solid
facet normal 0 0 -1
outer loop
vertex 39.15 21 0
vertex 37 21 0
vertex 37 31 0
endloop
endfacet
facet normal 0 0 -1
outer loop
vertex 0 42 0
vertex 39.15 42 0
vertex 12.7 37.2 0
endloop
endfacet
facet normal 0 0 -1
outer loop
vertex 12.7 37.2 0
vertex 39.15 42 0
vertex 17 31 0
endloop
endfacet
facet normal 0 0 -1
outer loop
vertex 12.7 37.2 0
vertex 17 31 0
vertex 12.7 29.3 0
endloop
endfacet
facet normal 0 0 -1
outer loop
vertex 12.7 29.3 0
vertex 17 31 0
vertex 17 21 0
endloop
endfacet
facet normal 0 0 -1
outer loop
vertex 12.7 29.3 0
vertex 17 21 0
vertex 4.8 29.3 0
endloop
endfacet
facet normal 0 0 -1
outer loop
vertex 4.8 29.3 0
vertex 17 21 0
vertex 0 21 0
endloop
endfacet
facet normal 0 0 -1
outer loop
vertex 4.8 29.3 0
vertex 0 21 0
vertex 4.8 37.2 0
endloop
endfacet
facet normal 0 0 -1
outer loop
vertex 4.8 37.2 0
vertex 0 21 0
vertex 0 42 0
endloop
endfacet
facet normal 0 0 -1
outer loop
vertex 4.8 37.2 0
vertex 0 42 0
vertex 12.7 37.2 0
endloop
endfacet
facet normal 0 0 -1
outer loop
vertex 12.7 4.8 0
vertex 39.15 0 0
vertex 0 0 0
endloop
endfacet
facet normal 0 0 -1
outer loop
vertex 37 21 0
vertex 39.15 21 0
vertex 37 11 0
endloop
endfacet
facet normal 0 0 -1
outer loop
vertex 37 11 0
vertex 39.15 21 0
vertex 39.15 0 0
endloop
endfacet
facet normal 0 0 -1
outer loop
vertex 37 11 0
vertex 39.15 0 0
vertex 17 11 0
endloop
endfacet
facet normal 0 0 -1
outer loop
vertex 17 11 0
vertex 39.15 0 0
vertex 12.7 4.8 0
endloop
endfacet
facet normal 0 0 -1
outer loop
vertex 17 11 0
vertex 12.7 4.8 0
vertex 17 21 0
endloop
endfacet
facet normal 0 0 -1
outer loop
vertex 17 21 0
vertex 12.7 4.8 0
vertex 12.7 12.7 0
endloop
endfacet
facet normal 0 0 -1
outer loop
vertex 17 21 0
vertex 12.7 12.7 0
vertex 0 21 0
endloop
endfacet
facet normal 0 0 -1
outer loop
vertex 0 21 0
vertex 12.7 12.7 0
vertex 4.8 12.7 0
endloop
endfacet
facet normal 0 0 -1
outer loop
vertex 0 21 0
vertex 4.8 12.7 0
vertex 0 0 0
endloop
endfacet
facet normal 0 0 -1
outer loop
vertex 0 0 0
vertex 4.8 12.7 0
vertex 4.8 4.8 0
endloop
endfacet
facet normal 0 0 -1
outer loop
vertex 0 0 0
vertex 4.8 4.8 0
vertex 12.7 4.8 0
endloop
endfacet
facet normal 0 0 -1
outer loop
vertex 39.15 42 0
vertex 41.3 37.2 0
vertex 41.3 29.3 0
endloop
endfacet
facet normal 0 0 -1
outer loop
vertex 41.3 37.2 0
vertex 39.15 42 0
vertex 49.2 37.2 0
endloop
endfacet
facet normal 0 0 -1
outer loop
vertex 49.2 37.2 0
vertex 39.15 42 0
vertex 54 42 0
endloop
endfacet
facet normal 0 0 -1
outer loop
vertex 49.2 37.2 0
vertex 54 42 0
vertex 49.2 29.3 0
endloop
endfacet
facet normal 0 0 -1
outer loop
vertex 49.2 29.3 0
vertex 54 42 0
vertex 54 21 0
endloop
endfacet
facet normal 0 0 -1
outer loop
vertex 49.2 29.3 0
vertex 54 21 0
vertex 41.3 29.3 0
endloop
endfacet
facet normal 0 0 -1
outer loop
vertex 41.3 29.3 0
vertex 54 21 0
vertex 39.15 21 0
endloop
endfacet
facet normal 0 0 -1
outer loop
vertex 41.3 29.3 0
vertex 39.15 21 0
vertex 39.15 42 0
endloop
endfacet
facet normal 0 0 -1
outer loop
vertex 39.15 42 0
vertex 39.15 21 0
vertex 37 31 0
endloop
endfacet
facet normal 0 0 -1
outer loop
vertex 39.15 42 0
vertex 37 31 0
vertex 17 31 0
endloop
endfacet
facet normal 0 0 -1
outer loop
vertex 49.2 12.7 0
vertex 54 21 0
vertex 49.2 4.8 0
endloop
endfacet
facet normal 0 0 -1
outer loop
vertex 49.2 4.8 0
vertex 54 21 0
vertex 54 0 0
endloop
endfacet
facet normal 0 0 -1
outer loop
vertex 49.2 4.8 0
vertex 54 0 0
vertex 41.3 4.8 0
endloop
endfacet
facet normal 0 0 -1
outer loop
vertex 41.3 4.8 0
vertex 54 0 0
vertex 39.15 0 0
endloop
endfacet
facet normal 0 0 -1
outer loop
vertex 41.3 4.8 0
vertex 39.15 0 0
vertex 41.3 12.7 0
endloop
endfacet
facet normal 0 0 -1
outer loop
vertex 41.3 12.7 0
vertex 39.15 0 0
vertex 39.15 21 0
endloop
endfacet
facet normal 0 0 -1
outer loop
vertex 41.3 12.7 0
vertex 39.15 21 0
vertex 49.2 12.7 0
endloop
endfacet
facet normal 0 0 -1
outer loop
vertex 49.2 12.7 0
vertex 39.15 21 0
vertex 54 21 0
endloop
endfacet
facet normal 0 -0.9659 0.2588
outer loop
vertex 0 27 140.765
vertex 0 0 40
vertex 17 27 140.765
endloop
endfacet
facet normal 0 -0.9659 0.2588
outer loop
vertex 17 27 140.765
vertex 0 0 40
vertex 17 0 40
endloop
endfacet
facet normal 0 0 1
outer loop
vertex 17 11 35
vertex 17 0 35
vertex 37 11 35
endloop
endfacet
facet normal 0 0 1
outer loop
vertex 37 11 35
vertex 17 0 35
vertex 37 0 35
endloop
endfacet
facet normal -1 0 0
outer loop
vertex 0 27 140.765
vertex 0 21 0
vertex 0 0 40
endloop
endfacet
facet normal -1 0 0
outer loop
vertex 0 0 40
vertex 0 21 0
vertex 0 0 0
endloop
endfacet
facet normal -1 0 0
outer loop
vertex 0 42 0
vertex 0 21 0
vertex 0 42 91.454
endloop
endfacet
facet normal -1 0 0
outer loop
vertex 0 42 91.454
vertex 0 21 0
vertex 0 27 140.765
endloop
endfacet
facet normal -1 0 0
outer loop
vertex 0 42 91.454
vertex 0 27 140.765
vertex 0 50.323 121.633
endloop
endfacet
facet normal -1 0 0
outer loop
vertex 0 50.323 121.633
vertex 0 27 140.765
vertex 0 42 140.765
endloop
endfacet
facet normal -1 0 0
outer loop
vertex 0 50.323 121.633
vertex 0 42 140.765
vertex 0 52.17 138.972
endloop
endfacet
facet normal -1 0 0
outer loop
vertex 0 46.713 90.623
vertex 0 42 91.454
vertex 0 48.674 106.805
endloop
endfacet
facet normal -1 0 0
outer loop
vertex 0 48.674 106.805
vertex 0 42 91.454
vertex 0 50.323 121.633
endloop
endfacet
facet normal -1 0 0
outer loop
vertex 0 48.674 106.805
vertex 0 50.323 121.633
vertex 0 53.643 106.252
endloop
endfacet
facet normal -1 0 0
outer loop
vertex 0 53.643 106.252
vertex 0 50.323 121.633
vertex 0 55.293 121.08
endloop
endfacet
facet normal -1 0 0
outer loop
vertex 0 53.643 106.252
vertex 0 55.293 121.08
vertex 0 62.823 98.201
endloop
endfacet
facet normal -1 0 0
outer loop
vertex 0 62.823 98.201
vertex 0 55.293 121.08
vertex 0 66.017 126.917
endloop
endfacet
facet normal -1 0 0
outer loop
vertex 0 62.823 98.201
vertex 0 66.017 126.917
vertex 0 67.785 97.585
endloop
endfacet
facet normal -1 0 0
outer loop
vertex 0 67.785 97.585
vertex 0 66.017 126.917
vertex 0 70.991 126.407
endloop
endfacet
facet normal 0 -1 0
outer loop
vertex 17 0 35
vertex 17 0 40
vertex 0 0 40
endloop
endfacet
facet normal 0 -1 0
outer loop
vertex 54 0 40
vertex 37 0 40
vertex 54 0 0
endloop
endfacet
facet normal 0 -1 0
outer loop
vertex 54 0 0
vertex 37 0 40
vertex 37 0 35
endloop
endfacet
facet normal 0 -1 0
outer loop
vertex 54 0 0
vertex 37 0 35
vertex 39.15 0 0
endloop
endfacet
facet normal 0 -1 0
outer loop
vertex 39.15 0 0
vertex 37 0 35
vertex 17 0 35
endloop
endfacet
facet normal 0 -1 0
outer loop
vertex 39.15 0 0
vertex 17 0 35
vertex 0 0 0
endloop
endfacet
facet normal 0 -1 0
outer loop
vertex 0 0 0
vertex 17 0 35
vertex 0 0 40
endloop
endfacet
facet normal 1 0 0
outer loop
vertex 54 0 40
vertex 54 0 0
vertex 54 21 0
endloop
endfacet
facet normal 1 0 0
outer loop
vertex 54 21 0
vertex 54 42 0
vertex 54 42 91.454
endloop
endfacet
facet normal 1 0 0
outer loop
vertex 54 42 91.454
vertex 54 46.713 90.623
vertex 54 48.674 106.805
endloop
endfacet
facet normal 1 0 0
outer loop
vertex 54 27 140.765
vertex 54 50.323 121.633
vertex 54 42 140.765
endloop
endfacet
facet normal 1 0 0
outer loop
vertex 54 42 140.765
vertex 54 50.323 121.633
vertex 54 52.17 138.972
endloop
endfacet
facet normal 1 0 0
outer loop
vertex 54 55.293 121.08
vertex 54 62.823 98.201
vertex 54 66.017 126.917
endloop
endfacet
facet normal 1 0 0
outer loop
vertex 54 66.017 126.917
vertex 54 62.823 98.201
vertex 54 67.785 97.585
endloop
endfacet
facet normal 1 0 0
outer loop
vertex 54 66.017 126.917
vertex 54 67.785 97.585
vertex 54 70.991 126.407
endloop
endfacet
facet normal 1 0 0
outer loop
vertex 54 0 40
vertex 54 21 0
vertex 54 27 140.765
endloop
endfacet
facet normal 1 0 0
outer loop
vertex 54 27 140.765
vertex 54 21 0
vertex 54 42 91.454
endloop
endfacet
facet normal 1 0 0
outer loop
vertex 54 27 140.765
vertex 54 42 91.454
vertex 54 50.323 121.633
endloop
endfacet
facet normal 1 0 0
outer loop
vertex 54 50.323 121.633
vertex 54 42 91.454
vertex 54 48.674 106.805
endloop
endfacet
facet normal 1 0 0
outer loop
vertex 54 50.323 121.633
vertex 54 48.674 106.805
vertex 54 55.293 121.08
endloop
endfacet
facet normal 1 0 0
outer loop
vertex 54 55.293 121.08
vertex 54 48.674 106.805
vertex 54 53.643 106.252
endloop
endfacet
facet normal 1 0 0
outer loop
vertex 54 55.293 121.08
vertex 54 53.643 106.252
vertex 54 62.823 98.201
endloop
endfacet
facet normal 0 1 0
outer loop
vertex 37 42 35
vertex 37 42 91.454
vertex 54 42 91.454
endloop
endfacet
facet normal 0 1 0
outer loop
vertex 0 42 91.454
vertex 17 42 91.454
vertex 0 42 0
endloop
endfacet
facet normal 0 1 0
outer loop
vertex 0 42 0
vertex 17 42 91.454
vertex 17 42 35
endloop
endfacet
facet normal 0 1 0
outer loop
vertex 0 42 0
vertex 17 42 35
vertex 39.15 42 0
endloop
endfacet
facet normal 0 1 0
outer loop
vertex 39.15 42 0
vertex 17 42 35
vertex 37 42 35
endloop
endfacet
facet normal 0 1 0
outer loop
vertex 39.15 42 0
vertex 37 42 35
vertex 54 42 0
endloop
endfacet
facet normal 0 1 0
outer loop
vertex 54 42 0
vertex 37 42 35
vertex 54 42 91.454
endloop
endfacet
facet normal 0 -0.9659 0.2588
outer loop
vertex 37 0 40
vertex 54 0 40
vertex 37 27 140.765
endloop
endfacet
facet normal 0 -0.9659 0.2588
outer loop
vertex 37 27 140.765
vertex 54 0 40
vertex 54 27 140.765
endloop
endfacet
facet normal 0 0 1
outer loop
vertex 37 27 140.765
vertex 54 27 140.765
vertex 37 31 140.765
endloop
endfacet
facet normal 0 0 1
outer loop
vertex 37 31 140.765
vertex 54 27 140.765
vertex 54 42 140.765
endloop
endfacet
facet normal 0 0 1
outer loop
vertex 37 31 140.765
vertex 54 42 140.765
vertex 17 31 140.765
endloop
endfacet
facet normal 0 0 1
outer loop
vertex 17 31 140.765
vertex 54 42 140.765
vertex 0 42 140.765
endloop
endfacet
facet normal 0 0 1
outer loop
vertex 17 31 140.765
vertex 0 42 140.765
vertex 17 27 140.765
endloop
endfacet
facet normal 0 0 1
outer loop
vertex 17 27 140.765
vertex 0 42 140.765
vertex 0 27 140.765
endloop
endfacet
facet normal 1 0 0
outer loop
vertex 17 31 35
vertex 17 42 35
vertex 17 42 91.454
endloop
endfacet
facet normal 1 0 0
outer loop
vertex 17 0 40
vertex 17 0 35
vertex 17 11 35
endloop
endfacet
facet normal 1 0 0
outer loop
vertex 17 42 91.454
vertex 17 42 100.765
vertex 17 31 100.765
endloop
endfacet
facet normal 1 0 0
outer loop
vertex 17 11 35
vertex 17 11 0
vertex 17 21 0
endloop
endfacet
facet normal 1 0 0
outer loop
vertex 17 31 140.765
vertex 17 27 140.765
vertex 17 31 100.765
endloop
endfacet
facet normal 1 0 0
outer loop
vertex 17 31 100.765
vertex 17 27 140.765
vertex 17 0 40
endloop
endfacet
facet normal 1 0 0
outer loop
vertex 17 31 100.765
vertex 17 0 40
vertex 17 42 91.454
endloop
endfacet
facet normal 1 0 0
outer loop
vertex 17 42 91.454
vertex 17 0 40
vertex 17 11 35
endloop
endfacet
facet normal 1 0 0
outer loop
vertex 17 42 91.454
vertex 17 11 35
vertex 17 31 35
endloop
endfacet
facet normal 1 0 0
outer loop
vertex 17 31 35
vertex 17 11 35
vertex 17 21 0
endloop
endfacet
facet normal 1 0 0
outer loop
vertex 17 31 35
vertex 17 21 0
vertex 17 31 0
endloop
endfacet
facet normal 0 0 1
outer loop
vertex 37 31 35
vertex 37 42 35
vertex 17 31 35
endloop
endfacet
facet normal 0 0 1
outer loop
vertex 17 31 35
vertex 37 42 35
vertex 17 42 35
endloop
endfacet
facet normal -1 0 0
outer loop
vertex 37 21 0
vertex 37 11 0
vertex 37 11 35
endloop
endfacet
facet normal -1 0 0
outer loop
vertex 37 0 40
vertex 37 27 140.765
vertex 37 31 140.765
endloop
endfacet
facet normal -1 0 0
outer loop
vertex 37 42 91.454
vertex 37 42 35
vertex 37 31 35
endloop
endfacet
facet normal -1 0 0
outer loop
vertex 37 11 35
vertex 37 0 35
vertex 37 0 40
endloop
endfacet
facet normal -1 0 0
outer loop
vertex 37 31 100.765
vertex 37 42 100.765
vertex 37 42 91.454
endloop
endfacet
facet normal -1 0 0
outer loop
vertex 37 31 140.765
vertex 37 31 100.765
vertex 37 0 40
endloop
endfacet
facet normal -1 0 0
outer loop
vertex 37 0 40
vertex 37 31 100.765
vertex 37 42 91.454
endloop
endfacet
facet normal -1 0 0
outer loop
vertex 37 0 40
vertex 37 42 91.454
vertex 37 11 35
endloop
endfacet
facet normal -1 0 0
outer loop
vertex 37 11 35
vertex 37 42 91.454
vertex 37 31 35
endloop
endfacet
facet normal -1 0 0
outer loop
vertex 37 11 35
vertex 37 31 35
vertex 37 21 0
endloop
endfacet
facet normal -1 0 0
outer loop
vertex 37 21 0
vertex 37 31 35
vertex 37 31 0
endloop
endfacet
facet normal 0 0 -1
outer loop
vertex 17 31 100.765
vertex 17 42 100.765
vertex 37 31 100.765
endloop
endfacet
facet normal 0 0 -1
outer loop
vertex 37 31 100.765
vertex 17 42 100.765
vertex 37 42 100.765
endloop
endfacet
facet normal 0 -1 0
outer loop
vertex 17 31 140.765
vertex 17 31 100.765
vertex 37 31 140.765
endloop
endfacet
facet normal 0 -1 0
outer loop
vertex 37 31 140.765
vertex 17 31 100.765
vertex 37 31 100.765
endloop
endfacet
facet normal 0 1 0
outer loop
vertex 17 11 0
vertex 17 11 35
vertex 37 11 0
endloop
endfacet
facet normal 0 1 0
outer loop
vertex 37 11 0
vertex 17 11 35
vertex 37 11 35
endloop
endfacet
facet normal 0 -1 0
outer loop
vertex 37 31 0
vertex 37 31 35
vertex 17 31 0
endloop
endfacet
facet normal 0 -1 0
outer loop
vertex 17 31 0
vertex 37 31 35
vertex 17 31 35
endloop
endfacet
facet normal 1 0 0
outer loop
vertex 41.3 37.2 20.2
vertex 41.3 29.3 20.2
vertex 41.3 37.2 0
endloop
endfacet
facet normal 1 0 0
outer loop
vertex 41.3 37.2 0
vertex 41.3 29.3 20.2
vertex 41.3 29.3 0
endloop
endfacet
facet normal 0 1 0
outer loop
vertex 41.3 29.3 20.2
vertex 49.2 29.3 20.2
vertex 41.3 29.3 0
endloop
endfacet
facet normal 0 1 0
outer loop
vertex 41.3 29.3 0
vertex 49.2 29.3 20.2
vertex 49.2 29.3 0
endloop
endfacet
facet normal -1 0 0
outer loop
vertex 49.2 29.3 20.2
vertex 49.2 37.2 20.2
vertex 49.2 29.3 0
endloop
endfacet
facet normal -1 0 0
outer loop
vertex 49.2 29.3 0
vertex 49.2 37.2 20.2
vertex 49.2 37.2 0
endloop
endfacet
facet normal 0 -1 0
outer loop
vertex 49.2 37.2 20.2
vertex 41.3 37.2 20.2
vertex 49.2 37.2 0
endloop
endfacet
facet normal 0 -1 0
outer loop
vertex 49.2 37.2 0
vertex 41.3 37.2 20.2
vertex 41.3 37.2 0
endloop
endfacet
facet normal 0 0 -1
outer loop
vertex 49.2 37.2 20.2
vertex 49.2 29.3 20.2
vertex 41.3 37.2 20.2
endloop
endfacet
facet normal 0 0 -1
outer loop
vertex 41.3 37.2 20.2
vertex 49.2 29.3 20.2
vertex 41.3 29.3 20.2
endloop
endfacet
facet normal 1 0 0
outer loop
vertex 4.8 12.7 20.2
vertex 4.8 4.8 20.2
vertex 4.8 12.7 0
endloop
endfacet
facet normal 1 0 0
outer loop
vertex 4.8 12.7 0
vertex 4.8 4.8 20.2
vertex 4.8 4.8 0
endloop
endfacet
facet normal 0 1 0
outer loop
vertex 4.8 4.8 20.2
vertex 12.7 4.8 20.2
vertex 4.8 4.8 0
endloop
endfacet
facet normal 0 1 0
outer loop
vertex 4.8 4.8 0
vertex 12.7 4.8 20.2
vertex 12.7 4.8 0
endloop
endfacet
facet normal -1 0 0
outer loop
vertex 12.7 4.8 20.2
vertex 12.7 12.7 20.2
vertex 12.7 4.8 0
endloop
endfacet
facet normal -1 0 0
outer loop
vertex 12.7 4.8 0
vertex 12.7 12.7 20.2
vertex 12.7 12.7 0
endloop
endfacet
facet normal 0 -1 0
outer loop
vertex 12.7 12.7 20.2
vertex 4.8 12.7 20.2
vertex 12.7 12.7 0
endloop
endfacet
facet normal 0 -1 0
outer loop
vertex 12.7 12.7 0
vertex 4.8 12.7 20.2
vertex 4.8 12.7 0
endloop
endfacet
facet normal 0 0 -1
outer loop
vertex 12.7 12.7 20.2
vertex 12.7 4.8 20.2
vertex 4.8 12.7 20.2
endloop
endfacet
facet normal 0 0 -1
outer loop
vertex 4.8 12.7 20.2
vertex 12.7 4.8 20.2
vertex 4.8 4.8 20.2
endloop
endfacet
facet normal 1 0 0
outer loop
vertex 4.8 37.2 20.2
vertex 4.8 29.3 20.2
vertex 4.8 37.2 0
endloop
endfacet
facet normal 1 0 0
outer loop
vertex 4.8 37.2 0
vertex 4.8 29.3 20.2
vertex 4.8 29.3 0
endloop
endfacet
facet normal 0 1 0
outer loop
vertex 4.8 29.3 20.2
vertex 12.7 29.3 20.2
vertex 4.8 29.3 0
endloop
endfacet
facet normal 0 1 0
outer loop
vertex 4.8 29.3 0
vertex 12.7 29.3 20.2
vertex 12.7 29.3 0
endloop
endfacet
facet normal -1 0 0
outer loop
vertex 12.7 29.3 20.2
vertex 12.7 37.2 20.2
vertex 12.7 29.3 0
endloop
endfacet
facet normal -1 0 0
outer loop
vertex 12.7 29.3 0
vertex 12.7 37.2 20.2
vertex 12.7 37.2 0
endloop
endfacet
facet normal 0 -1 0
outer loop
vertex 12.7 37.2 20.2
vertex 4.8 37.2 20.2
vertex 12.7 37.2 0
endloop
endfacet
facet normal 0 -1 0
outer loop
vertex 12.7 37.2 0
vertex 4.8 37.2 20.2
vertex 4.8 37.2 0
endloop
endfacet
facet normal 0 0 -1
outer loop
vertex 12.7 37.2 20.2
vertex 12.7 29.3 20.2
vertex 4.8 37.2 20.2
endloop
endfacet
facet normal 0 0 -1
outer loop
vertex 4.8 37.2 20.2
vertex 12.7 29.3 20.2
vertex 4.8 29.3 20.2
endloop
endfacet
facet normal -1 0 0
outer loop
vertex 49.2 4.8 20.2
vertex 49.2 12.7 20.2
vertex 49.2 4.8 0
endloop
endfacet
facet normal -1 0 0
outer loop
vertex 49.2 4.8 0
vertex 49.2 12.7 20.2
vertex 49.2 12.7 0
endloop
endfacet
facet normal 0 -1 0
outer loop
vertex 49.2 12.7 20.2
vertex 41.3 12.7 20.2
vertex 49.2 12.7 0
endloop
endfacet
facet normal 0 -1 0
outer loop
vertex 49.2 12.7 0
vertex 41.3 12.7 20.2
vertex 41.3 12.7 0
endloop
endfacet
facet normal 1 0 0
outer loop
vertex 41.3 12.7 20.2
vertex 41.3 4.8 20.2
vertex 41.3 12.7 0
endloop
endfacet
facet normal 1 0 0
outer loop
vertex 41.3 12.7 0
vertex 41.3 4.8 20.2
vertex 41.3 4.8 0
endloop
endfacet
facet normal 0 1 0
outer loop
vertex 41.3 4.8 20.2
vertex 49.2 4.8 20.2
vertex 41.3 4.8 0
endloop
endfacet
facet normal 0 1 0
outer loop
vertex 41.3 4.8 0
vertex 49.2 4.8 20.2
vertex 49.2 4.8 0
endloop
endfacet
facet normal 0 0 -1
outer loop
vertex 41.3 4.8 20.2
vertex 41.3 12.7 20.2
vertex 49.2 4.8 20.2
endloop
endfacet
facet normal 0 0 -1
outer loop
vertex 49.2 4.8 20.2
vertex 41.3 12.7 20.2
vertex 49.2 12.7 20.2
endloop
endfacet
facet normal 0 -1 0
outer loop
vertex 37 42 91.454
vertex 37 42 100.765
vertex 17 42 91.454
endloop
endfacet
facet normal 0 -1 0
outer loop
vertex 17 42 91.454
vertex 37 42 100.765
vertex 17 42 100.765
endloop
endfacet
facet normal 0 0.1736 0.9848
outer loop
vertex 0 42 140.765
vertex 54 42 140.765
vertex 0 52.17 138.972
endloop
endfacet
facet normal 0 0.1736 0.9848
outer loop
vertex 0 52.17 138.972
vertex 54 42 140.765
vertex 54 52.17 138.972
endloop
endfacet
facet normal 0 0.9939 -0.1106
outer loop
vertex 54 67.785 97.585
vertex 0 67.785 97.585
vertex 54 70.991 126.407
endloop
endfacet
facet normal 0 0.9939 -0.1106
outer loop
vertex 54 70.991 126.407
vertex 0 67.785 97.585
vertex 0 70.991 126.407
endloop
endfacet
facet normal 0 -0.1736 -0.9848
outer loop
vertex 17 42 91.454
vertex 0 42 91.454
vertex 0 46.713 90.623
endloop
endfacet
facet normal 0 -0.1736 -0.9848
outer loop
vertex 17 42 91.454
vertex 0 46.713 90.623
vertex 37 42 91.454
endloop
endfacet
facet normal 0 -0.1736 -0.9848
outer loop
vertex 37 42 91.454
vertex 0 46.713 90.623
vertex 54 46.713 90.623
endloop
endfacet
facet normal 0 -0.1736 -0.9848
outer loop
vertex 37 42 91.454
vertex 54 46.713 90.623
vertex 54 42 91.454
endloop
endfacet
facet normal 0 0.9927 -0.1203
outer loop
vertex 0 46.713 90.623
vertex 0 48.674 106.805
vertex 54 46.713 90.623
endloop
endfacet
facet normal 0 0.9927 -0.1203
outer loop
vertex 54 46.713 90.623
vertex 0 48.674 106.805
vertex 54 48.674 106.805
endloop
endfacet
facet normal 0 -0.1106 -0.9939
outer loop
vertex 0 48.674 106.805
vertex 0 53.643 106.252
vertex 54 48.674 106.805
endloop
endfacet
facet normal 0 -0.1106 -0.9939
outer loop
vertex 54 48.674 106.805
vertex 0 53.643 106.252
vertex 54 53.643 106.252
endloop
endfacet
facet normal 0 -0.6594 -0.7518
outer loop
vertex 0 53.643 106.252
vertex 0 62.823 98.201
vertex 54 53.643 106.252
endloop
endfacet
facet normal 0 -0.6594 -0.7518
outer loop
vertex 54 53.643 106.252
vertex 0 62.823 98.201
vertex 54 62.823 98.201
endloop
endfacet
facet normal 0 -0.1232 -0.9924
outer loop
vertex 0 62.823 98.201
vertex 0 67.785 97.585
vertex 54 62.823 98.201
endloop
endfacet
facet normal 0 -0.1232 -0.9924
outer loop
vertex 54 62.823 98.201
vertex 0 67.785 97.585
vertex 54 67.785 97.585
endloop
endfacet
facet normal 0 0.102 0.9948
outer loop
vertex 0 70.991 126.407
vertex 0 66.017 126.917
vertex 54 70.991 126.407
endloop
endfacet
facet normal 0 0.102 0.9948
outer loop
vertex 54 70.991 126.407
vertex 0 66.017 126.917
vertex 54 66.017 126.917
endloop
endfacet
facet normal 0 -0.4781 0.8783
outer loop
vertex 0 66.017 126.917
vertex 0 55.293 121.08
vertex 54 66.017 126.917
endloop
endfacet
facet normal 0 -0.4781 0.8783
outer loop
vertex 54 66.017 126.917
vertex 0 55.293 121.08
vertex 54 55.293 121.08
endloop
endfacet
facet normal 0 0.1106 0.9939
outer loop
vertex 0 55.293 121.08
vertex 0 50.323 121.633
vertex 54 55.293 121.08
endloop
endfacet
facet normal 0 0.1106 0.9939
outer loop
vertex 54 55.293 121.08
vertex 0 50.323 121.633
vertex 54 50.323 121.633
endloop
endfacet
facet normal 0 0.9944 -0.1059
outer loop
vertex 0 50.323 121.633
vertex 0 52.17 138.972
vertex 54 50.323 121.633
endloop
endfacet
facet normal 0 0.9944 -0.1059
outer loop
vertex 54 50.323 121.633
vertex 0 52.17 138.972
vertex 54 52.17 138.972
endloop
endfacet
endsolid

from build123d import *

# Parameters (mm, degrees)
SKETCH1_W           = 54
SKETCH1_H           = 42
BOSS_EXTRUDE1_DEPTH = 40
BOSS_EXTRUDE2_DEPTH = 54
SKETCH12_W          = 20
SKETCH12_H          = 65.765371804
CUT_EXTRUDE5_DEPTH  = 157.508433956
SKETCH13_W          = 20
SKETCH13_H          = 20
CUT_EXTRUDE6_DEPTH  = 157.508433956
SKETCH14_W          = 7.9
SKETCH14_H          = 7.9
CUT_EXTRUDE7_DEPTH  = 20.2
BOSS_EXTRUDE3_DEPTH = 54
CUT_EXTRUDE8_DEPTH  = 54


with BuildPart() as part:
    # Sketch1 → Boss-Extrude1 (new body)
    with BuildSketch(Plane.XY):
        with Locations((27, 21)):
            Rectangle(SKETCH1_W, SKETCH1_H)
    extrude(amount=BOSS_EXTRUDE1_DEPTH)

    # Sketch5 → Boss-Extrude2 (add)
    with BuildSketch(Plane.ZY):
        Polygon((140.765371804, 42), (40, 42), (40, 0), (140.765371804, 27), align=None)
    extrude(amount=-BOSS_EXTRUDE2_DEPTH)

    # Sketch12 → Cut-Extrude5 (cut, through all)
    with BuildSketch(Plane(origin=(0, 42, 0), x_dir=(1, 0, 0), z_dir=(0, 1, 0))):
        with Locations((27, -67.882685902)):
            Rectangle(SKETCH12_W, SKETCH12_H)
    extrude(amount=-CUT_EXTRUDE5_DEPTH, mode=Mode.SUBTRACT)

    # Sketch13 → Cut-Extrude6 (cut, through all)
    with BuildSketch(Plane(origin=(0, 0, 0), x_dir=(-1, 0, 0), z_dir=(0, 0, -1))):
        with Locations((-27, 21)):
            Rectangle(SKETCH13_W, SKETCH13_H)
    extrude(amount=-CUT_EXTRUDE6_DEPTH, mode=Mode.SUBTRACT)

    # Sketch14 → Cut-Extrude7 (cut)
    with BuildSketch(Plane(origin=(0, 0, 0), x_dir=(-1, 0, 0), z_dir=(0, 0, -1))):
        with Locations((-45.25, 33.25)):
            Rectangle(SKETCH14_W, SKETCH14_H)
        with Locations((-45.25, 8.75)):
            Rectangle(SKETCH14_W, SKETCH14_H)
        with Locations((-8.75, 33.25)):
            Rectangle(SKETCH14_W, SKETCH14_H)
        with Locations((-8.75, 8.75)):
            Rectangle(SKETCH14_W, SKETCH14_H)
    extrude(amount=-CUT_EXTRUDE7_DEPTH, mode=Mode.SUBTRACT)

    # Sketch16 → Boss-Extrude3 (add)
    with BuildSketch(Plane(origin=(54, 0, 0), x_dir=(0, 0, -1), z_dir=(1, 0, 0))):
        Polygon((-140.765371804, 42), (-135.475562383, 72), (-87.112319758, 66.620193825), (-91.4535242, 42), align=None)
    extrude(amount=-BOSS_EXTRUDE3_DEPTH)

    # Sketch18 → Cut-Extrude8 (cut)
    with BuildSketch(Plane(origin=(54, 0, 0), x_dir=(0, 0, -1), z_dir=(1, 0, 0))):
        Polygon((-126.406728237, 70.991205567), (-135.475562383, 72), (-138.97204162, 52.170480871), (-121.632853281, 50.323309926), (-121.080075246, 55.292659626), (-126.9167299, 66.017283743), align=None)
        Polygon((-97.584499975, 67.785092966), (-98.201251534, 62.823277017), (-106.251724868, 53.643191009), (-106.804502902, 48.673841309), (-90.622534666, 46.712775836), (-87.112319758, 66.620193825), align=None)
    extrude(amount=-CUT_EXTRUDE8_DEPTH, mode=Mode.SUBTRACT)


solid = part.part
